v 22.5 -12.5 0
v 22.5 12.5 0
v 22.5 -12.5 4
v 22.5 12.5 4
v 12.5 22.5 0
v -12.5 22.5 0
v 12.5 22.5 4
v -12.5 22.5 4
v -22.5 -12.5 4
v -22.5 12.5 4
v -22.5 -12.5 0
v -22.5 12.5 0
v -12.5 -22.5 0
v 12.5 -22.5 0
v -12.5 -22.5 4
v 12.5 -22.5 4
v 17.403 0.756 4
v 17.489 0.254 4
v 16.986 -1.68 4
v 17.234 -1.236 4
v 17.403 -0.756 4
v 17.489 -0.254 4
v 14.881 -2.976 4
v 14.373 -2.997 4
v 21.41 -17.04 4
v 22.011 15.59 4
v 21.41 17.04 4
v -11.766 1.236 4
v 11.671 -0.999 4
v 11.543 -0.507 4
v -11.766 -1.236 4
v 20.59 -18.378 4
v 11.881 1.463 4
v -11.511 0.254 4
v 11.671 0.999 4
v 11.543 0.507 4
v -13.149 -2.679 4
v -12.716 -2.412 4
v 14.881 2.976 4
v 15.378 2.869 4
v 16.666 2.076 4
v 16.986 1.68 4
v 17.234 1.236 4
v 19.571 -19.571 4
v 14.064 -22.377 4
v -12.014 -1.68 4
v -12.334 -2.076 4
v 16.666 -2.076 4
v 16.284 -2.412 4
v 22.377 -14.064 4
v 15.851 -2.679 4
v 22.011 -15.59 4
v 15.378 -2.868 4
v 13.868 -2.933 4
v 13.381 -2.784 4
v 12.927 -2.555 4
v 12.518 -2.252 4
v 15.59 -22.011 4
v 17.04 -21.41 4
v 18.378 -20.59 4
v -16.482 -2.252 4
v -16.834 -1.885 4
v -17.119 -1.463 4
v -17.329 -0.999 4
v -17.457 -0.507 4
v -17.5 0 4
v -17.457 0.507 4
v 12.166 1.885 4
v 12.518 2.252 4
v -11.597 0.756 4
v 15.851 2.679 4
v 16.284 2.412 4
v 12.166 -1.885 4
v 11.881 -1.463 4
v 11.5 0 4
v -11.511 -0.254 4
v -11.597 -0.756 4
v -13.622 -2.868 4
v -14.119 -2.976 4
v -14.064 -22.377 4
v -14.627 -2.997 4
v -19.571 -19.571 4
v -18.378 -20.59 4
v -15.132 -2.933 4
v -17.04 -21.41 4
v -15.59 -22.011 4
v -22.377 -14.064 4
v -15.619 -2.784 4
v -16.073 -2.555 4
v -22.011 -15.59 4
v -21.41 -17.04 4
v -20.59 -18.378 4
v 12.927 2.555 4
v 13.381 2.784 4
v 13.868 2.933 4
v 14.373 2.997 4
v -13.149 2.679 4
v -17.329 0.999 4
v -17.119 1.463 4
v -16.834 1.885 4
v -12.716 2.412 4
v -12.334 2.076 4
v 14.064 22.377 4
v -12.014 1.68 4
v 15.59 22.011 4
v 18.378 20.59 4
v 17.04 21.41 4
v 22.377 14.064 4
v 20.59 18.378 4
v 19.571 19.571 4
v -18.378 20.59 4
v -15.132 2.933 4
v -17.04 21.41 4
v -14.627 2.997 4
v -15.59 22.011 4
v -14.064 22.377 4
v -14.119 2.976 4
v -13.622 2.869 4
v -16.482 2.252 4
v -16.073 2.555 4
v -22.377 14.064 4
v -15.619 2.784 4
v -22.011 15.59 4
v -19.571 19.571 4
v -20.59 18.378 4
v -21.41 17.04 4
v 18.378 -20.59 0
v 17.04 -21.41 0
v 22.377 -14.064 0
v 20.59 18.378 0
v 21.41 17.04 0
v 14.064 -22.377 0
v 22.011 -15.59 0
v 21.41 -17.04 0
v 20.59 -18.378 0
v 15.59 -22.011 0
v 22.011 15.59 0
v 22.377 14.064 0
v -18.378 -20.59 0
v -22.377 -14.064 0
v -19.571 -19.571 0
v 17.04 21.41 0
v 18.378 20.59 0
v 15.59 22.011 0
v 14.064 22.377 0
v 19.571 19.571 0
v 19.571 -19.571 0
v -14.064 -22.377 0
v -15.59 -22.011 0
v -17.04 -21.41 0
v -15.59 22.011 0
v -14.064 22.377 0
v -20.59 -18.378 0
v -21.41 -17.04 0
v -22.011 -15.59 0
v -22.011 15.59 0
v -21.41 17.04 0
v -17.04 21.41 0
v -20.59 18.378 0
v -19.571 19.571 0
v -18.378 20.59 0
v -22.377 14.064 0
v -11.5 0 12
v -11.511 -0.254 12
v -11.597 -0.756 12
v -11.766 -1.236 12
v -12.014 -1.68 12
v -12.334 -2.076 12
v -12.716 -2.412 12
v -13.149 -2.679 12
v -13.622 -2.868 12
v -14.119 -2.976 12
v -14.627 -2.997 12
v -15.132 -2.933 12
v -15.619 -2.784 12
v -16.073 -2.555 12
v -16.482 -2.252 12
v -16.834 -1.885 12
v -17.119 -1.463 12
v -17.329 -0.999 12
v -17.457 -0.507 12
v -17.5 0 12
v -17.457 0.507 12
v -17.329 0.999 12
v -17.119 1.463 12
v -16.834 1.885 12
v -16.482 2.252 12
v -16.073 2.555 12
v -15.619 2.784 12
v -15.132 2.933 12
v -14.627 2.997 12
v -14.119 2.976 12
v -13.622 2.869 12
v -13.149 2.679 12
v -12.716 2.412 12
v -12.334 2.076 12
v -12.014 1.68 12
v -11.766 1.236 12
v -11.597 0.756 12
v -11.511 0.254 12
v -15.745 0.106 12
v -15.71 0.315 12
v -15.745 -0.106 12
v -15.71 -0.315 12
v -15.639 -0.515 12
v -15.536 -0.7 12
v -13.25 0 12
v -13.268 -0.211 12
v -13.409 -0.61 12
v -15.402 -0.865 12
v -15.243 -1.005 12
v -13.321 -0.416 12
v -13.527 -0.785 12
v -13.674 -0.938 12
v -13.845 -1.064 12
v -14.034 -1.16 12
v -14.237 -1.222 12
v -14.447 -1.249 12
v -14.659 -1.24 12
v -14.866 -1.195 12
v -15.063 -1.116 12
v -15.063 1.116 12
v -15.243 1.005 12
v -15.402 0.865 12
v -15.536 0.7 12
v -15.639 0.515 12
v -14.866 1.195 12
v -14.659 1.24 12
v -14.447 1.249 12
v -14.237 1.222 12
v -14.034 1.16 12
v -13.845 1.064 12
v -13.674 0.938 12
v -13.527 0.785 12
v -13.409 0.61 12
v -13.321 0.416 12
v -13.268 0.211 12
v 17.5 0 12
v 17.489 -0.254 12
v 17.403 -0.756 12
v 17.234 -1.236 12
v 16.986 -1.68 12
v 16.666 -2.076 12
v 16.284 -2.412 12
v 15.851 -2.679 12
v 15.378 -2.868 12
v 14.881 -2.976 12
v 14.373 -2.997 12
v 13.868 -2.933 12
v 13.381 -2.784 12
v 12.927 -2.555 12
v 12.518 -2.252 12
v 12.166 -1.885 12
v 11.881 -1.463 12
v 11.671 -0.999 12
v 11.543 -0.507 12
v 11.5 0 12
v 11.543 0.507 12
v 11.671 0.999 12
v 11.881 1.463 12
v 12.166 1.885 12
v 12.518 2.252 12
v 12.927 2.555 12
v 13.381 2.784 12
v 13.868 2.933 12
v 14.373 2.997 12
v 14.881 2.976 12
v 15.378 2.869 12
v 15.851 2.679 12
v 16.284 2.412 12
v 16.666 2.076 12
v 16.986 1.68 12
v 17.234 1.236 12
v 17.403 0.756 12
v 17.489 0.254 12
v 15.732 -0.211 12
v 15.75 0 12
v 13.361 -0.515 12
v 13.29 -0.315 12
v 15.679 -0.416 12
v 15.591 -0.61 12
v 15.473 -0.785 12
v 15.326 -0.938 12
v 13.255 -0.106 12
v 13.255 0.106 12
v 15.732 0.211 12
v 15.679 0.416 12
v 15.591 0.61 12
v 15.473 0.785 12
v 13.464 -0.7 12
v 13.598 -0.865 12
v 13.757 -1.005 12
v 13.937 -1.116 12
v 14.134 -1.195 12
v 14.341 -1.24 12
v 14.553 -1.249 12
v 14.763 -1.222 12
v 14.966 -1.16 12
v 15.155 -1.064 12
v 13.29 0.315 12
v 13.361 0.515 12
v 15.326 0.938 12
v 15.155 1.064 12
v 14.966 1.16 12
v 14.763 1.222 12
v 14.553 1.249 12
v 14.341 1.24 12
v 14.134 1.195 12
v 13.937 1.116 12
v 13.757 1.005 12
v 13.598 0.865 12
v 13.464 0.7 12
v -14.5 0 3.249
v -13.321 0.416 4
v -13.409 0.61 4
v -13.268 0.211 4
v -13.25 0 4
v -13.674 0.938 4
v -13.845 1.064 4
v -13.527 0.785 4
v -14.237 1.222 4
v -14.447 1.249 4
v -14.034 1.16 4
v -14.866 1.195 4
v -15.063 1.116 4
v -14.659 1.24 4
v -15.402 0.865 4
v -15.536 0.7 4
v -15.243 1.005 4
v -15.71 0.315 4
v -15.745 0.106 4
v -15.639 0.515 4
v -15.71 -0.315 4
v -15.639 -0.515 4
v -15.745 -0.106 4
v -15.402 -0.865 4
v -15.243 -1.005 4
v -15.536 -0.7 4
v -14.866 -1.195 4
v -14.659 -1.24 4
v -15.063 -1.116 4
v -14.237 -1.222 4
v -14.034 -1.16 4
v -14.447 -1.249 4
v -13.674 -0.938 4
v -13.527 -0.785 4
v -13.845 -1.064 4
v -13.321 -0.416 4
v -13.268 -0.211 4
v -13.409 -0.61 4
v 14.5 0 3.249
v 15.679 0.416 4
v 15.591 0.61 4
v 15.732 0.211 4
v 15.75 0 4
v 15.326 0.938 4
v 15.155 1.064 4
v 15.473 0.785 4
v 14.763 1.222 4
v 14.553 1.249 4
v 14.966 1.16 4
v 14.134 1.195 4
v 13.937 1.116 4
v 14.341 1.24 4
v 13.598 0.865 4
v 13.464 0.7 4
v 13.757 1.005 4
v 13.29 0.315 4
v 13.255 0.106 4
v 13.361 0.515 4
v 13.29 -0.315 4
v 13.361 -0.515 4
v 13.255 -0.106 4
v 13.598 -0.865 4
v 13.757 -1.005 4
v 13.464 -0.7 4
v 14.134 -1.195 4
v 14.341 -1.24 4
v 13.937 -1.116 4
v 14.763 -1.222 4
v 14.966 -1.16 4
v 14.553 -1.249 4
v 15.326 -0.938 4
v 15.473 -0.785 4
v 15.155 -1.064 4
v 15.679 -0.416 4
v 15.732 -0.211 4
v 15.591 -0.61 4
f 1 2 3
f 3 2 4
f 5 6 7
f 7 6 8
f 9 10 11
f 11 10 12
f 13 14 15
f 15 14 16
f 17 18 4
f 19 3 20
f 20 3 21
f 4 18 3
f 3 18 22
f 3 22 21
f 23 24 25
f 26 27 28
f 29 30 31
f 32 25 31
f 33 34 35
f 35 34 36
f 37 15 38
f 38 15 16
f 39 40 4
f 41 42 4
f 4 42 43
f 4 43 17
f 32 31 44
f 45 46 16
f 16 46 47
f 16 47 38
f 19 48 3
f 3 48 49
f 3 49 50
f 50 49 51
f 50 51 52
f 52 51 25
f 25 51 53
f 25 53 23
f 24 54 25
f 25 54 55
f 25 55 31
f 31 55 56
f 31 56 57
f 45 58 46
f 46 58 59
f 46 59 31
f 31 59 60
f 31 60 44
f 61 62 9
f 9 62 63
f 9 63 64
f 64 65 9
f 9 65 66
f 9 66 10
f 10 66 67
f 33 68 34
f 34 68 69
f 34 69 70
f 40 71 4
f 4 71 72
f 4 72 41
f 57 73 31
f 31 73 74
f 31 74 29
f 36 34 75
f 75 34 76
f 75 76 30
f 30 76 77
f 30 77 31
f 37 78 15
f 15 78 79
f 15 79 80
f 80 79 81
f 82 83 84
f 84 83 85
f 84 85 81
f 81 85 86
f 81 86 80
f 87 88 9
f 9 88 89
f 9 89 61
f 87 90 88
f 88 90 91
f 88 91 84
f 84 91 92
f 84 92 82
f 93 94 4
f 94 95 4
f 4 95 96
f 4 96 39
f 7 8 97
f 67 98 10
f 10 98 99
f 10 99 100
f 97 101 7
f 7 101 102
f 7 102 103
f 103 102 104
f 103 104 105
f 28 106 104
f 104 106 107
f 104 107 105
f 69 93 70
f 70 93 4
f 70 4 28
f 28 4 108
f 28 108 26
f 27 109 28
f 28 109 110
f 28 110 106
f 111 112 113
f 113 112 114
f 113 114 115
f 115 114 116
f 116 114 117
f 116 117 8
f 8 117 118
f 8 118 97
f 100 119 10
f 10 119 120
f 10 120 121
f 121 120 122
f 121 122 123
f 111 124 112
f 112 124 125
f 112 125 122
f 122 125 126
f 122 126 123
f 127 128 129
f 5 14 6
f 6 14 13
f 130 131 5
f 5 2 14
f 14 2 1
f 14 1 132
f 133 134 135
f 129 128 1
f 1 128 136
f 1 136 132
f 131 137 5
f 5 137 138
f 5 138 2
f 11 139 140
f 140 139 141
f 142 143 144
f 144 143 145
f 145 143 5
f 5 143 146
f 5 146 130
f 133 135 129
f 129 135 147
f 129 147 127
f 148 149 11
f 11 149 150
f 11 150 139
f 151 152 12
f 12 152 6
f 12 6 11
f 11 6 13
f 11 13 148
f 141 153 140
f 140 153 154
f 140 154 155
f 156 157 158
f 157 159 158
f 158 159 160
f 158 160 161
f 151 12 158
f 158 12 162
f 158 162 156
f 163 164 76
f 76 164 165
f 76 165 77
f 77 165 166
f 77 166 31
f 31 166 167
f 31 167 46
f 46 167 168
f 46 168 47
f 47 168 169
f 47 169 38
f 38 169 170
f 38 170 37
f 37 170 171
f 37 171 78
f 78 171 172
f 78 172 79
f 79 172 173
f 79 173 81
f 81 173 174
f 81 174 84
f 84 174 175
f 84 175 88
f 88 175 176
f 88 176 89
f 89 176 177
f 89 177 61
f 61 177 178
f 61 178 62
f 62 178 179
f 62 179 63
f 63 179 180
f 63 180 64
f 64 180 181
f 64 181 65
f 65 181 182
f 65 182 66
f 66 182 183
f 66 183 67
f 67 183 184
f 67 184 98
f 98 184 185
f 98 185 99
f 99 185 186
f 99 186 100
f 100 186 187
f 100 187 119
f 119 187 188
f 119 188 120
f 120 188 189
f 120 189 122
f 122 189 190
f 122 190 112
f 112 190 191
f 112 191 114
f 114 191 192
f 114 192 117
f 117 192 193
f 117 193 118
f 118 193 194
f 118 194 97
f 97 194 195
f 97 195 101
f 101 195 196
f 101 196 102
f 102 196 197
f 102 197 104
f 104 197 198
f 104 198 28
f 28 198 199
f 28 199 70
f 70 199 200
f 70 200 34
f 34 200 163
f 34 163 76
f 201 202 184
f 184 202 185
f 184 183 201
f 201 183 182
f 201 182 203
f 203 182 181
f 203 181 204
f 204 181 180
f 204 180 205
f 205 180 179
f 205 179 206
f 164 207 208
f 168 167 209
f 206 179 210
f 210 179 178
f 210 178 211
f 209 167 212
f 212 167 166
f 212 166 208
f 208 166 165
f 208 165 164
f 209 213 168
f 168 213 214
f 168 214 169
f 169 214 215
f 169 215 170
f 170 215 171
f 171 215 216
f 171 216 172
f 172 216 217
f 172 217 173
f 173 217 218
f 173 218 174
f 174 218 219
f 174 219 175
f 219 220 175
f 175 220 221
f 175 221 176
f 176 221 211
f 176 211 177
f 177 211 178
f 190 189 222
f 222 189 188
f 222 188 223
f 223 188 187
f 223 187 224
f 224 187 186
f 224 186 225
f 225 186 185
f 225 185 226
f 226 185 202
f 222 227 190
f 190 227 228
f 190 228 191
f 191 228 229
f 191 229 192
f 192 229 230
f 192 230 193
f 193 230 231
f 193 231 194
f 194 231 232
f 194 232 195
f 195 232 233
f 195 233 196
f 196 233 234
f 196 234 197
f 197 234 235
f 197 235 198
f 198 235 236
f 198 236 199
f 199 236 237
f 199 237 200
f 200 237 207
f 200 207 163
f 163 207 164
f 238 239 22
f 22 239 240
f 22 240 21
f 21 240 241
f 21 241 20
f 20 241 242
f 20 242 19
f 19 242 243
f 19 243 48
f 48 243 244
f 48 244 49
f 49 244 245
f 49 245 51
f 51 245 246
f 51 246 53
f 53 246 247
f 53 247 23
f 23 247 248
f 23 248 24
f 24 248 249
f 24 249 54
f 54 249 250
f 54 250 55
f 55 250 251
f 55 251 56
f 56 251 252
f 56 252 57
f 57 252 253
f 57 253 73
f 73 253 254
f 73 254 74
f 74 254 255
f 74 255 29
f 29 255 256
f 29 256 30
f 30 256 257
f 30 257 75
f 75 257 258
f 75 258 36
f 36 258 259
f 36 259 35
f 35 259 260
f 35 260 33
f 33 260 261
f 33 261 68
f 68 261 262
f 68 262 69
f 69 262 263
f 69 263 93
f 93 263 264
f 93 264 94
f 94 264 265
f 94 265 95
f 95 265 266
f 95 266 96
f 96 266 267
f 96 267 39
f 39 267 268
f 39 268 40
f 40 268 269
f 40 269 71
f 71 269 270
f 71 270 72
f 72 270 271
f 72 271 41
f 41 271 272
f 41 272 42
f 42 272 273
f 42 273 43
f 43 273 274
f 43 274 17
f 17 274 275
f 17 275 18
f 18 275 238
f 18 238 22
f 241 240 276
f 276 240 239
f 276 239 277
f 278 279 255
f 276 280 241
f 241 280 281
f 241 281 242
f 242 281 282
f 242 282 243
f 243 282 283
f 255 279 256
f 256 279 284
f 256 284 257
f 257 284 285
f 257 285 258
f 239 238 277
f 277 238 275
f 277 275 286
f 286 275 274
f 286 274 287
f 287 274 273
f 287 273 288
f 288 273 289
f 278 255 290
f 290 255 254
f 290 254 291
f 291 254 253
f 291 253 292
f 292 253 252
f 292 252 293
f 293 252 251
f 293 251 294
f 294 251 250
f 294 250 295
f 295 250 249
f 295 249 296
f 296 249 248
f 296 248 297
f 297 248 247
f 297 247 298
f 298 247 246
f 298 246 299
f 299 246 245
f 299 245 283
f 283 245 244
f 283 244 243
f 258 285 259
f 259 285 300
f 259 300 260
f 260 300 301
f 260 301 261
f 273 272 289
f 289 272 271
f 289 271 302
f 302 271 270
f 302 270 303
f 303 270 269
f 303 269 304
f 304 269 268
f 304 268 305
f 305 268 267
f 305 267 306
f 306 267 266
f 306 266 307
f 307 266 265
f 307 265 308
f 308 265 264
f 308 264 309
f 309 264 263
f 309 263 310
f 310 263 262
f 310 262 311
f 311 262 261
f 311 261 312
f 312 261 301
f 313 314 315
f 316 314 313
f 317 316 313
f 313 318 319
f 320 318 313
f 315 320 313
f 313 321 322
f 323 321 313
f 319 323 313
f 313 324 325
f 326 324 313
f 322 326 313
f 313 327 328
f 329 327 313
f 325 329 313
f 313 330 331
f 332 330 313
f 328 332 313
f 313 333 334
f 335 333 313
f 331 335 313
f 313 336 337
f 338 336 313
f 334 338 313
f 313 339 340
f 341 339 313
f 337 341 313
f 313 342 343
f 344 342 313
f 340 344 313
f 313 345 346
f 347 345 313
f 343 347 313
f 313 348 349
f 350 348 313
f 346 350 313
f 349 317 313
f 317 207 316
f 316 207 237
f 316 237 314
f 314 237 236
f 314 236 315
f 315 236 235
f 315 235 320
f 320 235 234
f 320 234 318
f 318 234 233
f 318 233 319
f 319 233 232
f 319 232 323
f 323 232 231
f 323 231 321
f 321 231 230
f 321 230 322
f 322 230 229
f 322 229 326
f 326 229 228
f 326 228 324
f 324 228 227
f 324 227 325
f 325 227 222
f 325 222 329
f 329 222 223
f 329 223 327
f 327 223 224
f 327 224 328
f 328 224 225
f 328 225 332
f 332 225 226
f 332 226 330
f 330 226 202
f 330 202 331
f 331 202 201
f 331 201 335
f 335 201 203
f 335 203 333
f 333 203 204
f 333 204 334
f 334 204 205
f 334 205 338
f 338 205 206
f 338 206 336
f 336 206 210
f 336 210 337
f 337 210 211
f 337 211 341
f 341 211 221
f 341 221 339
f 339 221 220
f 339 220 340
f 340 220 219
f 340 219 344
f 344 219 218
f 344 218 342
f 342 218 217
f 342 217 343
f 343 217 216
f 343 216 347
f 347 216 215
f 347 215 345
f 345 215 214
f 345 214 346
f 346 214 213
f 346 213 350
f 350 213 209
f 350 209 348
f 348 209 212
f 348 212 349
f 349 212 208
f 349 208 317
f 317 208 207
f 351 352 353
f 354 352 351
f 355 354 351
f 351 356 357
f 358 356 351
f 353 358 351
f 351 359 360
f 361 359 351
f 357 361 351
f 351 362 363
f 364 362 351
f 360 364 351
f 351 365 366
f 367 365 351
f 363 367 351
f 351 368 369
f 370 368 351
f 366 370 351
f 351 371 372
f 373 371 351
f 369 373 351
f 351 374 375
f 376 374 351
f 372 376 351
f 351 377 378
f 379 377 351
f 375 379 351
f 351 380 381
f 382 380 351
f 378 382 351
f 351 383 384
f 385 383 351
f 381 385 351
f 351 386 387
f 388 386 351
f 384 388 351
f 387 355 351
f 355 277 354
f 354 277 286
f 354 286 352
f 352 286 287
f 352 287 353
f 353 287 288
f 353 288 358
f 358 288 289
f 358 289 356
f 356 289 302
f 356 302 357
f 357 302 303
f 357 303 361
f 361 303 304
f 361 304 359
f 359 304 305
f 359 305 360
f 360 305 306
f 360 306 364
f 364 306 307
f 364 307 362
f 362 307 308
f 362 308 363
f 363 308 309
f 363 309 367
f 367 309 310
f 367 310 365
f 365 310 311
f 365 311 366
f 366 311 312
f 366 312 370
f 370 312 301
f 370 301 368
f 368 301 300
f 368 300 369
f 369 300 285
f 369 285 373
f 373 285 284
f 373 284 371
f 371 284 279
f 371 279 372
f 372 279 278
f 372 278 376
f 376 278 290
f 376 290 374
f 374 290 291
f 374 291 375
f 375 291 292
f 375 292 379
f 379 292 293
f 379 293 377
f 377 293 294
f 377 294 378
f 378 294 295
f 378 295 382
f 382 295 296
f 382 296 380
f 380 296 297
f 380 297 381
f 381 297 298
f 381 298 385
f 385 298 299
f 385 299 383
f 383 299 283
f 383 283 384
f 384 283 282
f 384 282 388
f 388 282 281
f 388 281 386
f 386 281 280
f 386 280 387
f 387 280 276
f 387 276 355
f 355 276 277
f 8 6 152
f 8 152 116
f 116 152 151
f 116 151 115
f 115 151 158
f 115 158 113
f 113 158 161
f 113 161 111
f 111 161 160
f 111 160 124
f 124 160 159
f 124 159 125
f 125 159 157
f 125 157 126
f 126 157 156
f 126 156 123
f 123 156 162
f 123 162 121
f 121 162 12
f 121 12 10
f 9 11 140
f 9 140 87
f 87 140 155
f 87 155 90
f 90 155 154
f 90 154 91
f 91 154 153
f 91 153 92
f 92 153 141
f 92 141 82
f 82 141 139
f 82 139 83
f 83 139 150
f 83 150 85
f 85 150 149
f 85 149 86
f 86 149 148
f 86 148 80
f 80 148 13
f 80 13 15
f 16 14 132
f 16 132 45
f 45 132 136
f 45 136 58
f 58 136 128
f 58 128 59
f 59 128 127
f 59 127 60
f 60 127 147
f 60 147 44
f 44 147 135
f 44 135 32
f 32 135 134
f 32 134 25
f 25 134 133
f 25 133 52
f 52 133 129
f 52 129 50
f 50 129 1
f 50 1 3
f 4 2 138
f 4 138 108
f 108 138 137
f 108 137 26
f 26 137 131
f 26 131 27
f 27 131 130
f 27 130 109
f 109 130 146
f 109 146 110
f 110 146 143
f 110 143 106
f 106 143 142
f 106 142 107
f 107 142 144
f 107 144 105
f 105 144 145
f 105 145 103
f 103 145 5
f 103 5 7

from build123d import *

# Parameters (mm, degrees)
SKETCH5_W                       = 45
SKETCH5_H                       = 45
BOSS_EXTRUDE1_DEPTH             = 4
SKETCH7_R                       = 3
BOSS_EXTRUDE2_DEPTH             = 8
SKETCH9_R                       = 3
BOSS_EXTRUDE3_DEPTH             = 8
TAP_DRILL_FOR_M3X0_5_TAP1_D     = 2.5
TAP_DRILL_FOR_M3X0_5_TAP1_DEPTH = 8
TAP_DRILL_FOR_M3X0_5_TAP1_TIP   = 0.751075774
TAP_DRILL_FOR_M3X0_5_TAP2_D     = 2.5
TAP_DRILL_FOR_M3X0_5_TAP2_DEPTH = 8
TAP_DRILL_FOR_M3X0_5_TAP2_TIP   = 0.751075774
FILLET3_R                       = 10
FILLET4_R                       = 10


with BuildPart() as part:
    # Sketch5 → Boss-Extrude1 (new body)
    with BuildSketch(Plane.XY):
        Rectangle(SKETCH5_W, SKETCH5_H)
    extrude(amount=BOSS_EXTRUDE1_DEPTH)

    # Sketch7 → Boss-Extrude2 (add)
    with BuildSketch(Plane.XY.offset(4)):
        with Locations((-14.5, 0)):
            Circle(SKETCH7_R)
    extrude(amount=BOSS_EXTRUDE2_DEPTH)

    # Sketch9 → Boss-Extrude3 (add)
    with BuildSketch(Plane.XY.offset(4)):
        with Locations((14.5, 0)):
            Circle(SKETCH9_R)
    extrude(amount=BOSS_EXTRUDE3_DEPTH)

    # Tap Drill for M3x0.5 Tap1
    with Locations(Plane.XY.offset(12)):
        with Locations((-14.5, 0)):
            Hole(TAP_DRILL_FOR_M3X0_5_TAP1_D / 2, depth=TAP_DRILL_FOR_M3X0_5_TAP1_DEPTH)
            with Locations((0, 0, -(TAP_DRILL_FOR_M3X0_5_TAP1_DEPTH + TAP_DRILL_FOR_M3X0_5_TAP1_TIP / 2))):  # 118° drill point
                Cone(0, TAP_DRILL_FOR_M3X0_5_TAP1_D / 2, TAP_DRILL_FOR_M3X0_5_TAP1_TIP, mode=Mode.SUBTRACT)

    # Tap Drill for M3x0.5 Tap2
    with Locations(Plane.XY.offset(12)):
        with Locations((14.5, 0)):
            Hole(TAP_DRILL_FOR_M3X0_5_TAP2_D / 2, depth=TAP_DRILL_FOR_M3X0_5_TAP2_DEPTH)
            with Locations((0, 0, -(TAP_DRILL_FOR_M3X0_5_TAP2_DEPTH + TAP_DRILL_FOR_M3X0_5_TAP2_TIP / 2))):  # 118° drill point
                Cone(0, TAP_DRILL_FOR_M3X0_5_TAP2_D / 2, TAP_DRILL_FOR_M3X0_5_TAP2_TIP, mode=Mode.SUBTRACT)

    # Fillet3
    fillet3_edges = [part.edges().sort_by_distance(p)[0] for p in [
        (-22.5, 22.5, 2),
    ]]
    fillet(fillet3_edges, radius=FILLET3_R)

    # Fillet4
    fillet4_edges = [part.edges().sort_by_distance(p)[0] for p in [
        (22.5, -22.5, 2),
        (-22.5, -22.5, 2),
        (22.5, 22.5, 2),
    ]]
    fillet(fillet4_edges, radius=FILLET4_R)


solid = part.part
